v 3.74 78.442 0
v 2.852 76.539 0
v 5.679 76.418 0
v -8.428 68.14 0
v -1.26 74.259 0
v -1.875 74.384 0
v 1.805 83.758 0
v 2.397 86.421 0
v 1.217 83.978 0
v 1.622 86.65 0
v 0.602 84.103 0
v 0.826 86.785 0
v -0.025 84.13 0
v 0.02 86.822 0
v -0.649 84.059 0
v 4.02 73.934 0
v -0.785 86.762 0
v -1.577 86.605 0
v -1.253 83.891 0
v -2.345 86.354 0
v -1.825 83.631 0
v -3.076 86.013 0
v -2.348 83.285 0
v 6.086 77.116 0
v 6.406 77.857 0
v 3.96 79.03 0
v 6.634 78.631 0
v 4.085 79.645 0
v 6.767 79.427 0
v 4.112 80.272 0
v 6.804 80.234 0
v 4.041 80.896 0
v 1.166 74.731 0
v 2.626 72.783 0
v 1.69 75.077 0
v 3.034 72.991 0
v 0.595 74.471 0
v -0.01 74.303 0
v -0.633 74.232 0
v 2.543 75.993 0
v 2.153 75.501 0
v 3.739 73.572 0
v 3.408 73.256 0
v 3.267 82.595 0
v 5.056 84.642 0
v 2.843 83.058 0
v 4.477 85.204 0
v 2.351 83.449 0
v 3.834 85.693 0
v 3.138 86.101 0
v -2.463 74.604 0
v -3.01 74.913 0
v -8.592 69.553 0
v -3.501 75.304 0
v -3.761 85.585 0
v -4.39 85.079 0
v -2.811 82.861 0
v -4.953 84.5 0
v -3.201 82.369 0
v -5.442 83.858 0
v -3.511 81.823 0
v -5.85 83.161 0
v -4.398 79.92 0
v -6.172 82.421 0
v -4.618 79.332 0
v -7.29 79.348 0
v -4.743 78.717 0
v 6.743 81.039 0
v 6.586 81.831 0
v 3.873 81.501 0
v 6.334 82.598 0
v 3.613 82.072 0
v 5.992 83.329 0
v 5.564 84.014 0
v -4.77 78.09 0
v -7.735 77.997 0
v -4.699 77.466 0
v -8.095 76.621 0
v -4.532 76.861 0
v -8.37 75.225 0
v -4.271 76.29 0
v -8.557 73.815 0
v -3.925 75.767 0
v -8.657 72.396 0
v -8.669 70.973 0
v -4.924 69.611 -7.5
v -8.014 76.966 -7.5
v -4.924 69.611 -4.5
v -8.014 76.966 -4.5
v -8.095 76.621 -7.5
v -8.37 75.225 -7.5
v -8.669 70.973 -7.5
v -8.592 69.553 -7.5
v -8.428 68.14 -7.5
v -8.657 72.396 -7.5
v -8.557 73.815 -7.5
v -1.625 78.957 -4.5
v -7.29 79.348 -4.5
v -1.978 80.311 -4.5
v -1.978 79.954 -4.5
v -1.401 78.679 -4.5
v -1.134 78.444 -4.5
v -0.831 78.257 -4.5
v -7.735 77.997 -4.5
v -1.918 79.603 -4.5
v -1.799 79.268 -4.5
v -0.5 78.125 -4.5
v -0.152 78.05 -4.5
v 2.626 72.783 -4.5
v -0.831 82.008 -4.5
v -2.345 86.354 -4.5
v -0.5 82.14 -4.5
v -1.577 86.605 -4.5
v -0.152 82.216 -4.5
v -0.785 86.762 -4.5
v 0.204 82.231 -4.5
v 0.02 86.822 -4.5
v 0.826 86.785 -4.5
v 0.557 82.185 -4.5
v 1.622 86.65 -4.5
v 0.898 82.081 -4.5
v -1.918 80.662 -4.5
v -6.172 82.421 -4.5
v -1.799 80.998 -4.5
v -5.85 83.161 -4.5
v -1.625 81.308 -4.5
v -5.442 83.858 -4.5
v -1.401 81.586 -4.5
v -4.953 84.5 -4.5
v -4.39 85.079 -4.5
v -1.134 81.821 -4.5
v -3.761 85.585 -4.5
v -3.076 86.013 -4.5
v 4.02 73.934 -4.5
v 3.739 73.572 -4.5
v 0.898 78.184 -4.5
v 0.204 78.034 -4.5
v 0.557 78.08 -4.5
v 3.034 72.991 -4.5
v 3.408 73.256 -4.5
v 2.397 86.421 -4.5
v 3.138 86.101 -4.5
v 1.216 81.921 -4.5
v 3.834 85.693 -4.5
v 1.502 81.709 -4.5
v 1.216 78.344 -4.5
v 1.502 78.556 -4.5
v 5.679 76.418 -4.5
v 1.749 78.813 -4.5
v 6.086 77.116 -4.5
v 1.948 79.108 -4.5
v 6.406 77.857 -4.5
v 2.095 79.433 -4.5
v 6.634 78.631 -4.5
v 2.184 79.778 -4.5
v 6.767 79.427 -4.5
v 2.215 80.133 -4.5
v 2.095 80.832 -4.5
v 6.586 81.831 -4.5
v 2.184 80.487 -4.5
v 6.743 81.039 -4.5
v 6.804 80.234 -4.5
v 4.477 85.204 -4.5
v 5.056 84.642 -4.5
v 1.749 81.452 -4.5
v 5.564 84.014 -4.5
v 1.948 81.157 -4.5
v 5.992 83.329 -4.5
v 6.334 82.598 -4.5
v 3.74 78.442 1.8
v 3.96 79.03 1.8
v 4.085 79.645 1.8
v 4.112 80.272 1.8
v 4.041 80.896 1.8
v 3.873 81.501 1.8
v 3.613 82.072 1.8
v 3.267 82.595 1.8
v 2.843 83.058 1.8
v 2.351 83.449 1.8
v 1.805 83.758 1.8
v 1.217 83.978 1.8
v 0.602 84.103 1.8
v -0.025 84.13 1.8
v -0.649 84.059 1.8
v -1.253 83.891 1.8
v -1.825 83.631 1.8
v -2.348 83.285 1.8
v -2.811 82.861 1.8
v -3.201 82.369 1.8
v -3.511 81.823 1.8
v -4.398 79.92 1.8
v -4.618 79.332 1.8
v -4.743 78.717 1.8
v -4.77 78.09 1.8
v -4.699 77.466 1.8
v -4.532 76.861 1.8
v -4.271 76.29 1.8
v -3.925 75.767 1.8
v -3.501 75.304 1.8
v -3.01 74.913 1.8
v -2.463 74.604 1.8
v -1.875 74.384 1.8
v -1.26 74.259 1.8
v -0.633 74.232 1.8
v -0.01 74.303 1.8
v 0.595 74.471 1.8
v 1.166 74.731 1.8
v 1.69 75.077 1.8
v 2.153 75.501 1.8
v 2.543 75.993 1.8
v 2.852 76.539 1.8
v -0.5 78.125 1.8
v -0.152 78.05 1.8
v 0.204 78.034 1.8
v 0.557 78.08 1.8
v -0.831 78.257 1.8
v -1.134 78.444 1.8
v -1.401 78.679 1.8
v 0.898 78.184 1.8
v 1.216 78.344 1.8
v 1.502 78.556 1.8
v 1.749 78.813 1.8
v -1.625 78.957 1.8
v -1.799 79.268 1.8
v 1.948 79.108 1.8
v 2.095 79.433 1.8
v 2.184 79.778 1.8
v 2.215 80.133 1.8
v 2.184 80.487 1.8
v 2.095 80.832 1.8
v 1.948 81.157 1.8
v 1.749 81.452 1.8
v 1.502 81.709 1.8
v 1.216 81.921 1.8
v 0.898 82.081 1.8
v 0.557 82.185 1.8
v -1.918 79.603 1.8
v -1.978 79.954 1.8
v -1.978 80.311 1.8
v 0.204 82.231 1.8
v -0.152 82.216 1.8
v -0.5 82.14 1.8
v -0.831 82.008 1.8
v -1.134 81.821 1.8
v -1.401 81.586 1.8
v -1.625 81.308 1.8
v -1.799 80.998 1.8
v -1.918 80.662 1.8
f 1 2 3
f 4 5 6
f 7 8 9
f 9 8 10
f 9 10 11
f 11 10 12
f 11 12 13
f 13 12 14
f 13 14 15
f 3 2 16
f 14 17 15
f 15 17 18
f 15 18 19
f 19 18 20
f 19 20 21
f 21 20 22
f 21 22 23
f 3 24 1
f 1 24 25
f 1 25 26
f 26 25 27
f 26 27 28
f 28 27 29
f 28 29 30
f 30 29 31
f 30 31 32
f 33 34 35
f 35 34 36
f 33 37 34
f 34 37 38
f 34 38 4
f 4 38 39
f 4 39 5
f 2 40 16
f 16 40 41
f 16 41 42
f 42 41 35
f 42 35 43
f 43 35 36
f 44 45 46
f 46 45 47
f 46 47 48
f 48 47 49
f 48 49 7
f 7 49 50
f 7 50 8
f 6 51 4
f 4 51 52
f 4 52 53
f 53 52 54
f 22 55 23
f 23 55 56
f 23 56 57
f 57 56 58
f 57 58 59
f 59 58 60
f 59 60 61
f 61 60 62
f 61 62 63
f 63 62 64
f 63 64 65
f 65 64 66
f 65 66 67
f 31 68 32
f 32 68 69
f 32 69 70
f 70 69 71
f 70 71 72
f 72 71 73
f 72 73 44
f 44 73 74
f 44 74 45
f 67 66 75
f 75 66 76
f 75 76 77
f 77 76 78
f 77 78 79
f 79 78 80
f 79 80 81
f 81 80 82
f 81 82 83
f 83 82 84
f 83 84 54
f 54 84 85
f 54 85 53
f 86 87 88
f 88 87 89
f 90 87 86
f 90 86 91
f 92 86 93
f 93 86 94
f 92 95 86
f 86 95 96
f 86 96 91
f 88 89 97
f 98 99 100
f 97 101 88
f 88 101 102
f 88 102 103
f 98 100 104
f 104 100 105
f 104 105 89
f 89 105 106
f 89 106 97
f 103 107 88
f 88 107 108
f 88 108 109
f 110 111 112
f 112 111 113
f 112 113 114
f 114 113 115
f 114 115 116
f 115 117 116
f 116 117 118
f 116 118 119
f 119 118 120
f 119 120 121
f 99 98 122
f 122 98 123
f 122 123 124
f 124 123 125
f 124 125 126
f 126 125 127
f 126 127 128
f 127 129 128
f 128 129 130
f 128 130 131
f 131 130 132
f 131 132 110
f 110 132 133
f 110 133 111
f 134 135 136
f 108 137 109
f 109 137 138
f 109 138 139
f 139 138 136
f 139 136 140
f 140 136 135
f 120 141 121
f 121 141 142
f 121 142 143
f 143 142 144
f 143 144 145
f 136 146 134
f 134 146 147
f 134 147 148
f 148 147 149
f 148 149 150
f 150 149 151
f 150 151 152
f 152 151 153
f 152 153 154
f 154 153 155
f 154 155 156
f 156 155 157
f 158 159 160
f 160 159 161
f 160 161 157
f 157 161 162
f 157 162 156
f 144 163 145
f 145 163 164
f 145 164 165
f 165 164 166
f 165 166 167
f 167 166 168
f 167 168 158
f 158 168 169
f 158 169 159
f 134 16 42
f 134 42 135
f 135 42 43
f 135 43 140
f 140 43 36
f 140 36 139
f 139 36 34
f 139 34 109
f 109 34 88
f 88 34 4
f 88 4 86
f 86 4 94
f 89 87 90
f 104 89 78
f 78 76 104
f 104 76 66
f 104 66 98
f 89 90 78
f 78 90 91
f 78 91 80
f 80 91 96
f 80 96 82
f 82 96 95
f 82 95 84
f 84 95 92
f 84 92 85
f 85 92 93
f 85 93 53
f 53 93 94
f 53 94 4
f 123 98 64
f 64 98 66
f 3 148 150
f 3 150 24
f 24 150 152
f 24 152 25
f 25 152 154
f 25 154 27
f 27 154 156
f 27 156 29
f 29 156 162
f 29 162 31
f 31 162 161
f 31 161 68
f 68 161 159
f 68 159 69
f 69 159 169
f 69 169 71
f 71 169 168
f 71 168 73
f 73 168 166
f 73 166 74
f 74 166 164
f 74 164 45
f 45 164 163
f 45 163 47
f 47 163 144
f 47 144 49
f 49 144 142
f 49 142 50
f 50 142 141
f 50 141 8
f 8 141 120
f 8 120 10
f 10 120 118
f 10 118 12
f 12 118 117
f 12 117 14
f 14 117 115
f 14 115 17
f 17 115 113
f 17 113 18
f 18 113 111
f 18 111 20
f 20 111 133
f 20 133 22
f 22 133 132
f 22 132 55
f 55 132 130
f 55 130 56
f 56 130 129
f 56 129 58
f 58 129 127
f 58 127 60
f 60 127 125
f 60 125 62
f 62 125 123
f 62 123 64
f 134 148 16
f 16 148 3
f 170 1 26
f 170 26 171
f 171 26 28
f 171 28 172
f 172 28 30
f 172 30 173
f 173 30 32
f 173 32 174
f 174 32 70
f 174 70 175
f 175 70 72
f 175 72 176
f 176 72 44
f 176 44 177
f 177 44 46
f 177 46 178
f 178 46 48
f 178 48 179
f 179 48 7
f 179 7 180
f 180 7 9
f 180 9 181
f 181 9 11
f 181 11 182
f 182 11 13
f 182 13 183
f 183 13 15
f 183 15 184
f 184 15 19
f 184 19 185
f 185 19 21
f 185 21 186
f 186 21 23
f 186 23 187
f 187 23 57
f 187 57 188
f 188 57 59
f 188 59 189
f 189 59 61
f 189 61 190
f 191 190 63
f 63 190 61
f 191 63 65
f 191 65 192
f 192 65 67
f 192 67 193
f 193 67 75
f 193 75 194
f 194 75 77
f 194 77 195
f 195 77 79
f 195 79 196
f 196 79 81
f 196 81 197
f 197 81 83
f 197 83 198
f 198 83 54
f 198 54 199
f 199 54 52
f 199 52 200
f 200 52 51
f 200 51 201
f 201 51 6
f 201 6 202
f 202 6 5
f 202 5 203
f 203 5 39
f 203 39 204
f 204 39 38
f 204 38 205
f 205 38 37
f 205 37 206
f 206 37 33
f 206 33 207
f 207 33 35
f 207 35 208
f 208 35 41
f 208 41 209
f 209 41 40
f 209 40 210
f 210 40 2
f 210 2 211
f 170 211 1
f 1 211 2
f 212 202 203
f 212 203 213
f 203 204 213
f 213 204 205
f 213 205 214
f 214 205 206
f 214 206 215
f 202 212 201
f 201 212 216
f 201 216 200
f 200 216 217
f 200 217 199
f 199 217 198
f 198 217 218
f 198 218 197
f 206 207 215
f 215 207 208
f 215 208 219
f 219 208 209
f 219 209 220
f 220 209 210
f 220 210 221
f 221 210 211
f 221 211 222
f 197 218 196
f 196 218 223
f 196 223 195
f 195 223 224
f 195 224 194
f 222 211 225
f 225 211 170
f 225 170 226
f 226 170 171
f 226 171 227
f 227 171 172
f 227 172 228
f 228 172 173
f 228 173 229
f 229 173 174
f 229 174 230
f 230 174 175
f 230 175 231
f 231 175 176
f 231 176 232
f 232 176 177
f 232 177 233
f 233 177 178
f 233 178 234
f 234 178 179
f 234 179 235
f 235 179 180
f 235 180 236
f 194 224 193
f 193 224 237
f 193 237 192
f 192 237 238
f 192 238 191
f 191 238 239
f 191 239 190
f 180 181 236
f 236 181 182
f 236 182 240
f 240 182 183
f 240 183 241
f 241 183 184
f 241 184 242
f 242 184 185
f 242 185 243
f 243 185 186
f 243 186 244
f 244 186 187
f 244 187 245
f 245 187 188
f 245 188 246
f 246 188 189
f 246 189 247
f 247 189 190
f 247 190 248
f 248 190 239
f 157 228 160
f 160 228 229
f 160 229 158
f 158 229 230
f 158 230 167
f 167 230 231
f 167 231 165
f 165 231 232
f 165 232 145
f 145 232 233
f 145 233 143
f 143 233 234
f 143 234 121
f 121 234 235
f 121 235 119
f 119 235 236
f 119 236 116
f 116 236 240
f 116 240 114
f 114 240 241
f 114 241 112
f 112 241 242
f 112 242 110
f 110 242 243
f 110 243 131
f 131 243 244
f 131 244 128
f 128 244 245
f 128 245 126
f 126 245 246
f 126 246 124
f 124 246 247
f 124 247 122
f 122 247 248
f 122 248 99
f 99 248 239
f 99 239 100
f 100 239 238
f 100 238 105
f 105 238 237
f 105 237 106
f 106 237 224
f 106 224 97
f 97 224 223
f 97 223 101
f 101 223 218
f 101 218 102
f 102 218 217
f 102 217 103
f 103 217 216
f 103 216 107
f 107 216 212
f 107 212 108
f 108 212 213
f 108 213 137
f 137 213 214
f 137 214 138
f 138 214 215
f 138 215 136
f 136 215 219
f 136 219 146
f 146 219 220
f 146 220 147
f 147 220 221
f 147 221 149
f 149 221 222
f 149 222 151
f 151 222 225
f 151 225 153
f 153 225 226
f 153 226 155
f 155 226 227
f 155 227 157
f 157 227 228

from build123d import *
from build123d.topology import SkipClean

# Parameters (mm, degrees)
SKETCH3_R           = 2.75
SKETCH3_R_2         = 2.1
BOSS_EXTRUDE2_DEPTH = 11
BOSS_EXTRUDE4_START = 4.5
BOSS_EXTRUDE4_DEPTH = 4.5
BOSS_EXTRUDE3_START = 3
BOSS_EXTRUDE3_DEPTH = 3
SKETCH14_W          = 47.285712055
SKETCH14_H          = 12.595473758
CUT_EXTRUDE1_DEPTH  = 92.326119258
BOSS_EXTRUDE5_DEPTH = 1.8
SKETCH15_R          = 2.1
CUT_EXTRUDE2_DEPTH  = 88.749019959


with BuildPart() as part:
    # Sketch3 → Boss-Extrude2 (new body)
    with BuildSketch(Plane.XY):
        with BuildLine():
            Line((11.81639044, 60.252883085), (11.728372068, 60.311638564))
            ThreePointArc((11.728372068, 60.311638564), (8.917204522, 62.7925154), (6.866230988, 65.931132995))
            ThreePointArc((6.866230988, 65.931132995), (6.025591445, 67.274340702), (4.901176311, 68.390840765))
            ThreePointArc((4.901176311, 68.390840765), (3.375934297, 70.989881123), (4.020351516, 73.93370524))
            Line((4.020351516, 73.93370524), (5.678869184, 76.41823992))
            ThreePointArc((5.678869184, 76.41823992), (3.137547336, 86.100651278), (-6.171856019, 82.420649156))
            Line((-6.171856019, 82.420649156), (-7.290261888, 79.347854286))
            ThreePointArc((-7.290261888, 79.347854286), (-8.557893098, 69.185727028), (-5.279809822, 59.483671095))
            ThreePointArc((-5.279809822, 59.483671095), (-2.848156457, 57.139360441), (0.414833066, 56.266646336))
            ThreePointArc((0.414833066, 56.266646336), (3.287818882, 55.822166382), (5.91364728, 54.574514525))
            Line((5.91364728, 54.574514525), (7.374782695, 53.599153256))
            ThreePointArc((7.374782695, 53.599153256), (10.815902262, 50.678650143), (13.499590609, 47.049812979))
            ThreePointArc((13.499590609, 47.049812979), (24.965953819, 46.665736496), (20.21385057, 57.108078892))
            ThreePointArc((20.21385057, 57.108078892), (15.833272198, 58.194897845), (11.81639044, 60.252883085))
        make_face()
        with Locations((19.351869275, 50.413343031)):
            Circle(SKETCH3_R, mode=Mode.SUBTRACT)
        with Locations((0.471910886, 63.016405008)):
            Circle(SKETCH3_R, mode=Mode.SUBTRACT)
        with Locations((0.114687614, 80.132534397)):
            Circle(SKETCH3_R_2, mode=Mode.SUBTRACT)
    extrude(amount=BOSS_EXTRUDE2_DEPTH)

    # Sketch13 → Boss-Extrude4 (add)
    with SkipClean():  # the faces are left unmerged after this step: merging them gives an invalid solid
        with BuildSketch(Plane(origin=(0, 0, 0), x_dir=(-1, 0, 0), z_dir=(0, 0, -1)).offset(BOSS_EXTRUDE4_START)):
            with BuildLine():
                Line((-5.678869184, 76.41823992), (-4.020351516, 73.93370524))
                ThreePointArc((-4.020351516, 73.93370524), (-3.407782277, 73.255690271), (-2.625844204, 72.782913134))
                Line((-2.625844204, 72.782913134), (8.427696777, 68.139691908))
                ThreePointArc((8.427696777, 68.139691908), (8.557268078, 73.814637343), (7.290261888, 79.347854286))
                Line((7.290261888, 79.347854286), (6.171856019, 82.420649156))
                ThreePointArc((6.171856019, 82.420649156), (-3.137547336, 86.100651278), (-5.678869184, 76.41823992))
            make_face()
        extrude(amount=-BOSS_EXTRUDE4_DEPTH)

    # Sketch12 → Boss-Extrude3 (add)
    with SkipClean():  # the faces are left unmerged after this step: merging them gives an invalid solid
        with BuildSketch(Plane(origin=(0, 0, -4.5), x_dir=(-1, 0, 0), z_dir=(0, 0, -1)).offset(BOSS_EXTRUDE3_START)):
            with BuildLine():
                Line((8.013597957, 76.965805827), (4.924247842, 69.611373108))
                Line((4.924247842, 69.611373108), (8.427696777, 68.139691908))
                ThreePointArc((8.427696777, 68.139691908), (8.649339764, 72.572862025), (8.013597957, 76.965805827))
            make_face()
        extrude(amount=-BOSS_EXTRUDE3_DEPTH)

    # Sketch14 → Cut-Extrude1 (cut, through all)
    with BuildSketch(Plane(origin=(0, 0, 0), x_dir=(1, 0, 0), z_dir=(0, 1, 0))):
        with Locations((8.412006537, -6.297736879)):
            Rectangle(SKETCH14_W, SKETCH14_H)
    extrude(amount=CUT_EXTRUDE1_DEPTH, mode=Mode.SUBTRACT)

    # Sketch16 → Boss-Extrude5 (add)
    with BuildSketch(Plane.XY):
        with BuildLine():
            Line((3.739918762, 78.44206135), (2.852420412, 76.538814997))
            ThreePointArc((2.852420412, 76.538814997), (-2.463283783, 74.604056896), (-4.398041884, 79.919761091))
            Line((-4.398041884, 79.919761091), (-3.510543534, 81.823007444))
            ThreePointArc((-3.510543534, 81.823007444), (1.805160661, 83.757765545), (3.739918762, 78.44206135))
        make_face()
    extrude(amount=BOSS_EXTRUDE5_DEPTH)

    # Sketch15 → Cut-Extrude2 (cut, through all)
    with BuildSketch(Plane.XY.offset(1.8)):
        with Locations((0.114687614, 80.132534397)):
            Circle(SKETCH15_R)
    extrude(amount=-CUT_EXTRUDE2_DEPTH, mode=Mode.SUBTRACT)


solid = part.part
